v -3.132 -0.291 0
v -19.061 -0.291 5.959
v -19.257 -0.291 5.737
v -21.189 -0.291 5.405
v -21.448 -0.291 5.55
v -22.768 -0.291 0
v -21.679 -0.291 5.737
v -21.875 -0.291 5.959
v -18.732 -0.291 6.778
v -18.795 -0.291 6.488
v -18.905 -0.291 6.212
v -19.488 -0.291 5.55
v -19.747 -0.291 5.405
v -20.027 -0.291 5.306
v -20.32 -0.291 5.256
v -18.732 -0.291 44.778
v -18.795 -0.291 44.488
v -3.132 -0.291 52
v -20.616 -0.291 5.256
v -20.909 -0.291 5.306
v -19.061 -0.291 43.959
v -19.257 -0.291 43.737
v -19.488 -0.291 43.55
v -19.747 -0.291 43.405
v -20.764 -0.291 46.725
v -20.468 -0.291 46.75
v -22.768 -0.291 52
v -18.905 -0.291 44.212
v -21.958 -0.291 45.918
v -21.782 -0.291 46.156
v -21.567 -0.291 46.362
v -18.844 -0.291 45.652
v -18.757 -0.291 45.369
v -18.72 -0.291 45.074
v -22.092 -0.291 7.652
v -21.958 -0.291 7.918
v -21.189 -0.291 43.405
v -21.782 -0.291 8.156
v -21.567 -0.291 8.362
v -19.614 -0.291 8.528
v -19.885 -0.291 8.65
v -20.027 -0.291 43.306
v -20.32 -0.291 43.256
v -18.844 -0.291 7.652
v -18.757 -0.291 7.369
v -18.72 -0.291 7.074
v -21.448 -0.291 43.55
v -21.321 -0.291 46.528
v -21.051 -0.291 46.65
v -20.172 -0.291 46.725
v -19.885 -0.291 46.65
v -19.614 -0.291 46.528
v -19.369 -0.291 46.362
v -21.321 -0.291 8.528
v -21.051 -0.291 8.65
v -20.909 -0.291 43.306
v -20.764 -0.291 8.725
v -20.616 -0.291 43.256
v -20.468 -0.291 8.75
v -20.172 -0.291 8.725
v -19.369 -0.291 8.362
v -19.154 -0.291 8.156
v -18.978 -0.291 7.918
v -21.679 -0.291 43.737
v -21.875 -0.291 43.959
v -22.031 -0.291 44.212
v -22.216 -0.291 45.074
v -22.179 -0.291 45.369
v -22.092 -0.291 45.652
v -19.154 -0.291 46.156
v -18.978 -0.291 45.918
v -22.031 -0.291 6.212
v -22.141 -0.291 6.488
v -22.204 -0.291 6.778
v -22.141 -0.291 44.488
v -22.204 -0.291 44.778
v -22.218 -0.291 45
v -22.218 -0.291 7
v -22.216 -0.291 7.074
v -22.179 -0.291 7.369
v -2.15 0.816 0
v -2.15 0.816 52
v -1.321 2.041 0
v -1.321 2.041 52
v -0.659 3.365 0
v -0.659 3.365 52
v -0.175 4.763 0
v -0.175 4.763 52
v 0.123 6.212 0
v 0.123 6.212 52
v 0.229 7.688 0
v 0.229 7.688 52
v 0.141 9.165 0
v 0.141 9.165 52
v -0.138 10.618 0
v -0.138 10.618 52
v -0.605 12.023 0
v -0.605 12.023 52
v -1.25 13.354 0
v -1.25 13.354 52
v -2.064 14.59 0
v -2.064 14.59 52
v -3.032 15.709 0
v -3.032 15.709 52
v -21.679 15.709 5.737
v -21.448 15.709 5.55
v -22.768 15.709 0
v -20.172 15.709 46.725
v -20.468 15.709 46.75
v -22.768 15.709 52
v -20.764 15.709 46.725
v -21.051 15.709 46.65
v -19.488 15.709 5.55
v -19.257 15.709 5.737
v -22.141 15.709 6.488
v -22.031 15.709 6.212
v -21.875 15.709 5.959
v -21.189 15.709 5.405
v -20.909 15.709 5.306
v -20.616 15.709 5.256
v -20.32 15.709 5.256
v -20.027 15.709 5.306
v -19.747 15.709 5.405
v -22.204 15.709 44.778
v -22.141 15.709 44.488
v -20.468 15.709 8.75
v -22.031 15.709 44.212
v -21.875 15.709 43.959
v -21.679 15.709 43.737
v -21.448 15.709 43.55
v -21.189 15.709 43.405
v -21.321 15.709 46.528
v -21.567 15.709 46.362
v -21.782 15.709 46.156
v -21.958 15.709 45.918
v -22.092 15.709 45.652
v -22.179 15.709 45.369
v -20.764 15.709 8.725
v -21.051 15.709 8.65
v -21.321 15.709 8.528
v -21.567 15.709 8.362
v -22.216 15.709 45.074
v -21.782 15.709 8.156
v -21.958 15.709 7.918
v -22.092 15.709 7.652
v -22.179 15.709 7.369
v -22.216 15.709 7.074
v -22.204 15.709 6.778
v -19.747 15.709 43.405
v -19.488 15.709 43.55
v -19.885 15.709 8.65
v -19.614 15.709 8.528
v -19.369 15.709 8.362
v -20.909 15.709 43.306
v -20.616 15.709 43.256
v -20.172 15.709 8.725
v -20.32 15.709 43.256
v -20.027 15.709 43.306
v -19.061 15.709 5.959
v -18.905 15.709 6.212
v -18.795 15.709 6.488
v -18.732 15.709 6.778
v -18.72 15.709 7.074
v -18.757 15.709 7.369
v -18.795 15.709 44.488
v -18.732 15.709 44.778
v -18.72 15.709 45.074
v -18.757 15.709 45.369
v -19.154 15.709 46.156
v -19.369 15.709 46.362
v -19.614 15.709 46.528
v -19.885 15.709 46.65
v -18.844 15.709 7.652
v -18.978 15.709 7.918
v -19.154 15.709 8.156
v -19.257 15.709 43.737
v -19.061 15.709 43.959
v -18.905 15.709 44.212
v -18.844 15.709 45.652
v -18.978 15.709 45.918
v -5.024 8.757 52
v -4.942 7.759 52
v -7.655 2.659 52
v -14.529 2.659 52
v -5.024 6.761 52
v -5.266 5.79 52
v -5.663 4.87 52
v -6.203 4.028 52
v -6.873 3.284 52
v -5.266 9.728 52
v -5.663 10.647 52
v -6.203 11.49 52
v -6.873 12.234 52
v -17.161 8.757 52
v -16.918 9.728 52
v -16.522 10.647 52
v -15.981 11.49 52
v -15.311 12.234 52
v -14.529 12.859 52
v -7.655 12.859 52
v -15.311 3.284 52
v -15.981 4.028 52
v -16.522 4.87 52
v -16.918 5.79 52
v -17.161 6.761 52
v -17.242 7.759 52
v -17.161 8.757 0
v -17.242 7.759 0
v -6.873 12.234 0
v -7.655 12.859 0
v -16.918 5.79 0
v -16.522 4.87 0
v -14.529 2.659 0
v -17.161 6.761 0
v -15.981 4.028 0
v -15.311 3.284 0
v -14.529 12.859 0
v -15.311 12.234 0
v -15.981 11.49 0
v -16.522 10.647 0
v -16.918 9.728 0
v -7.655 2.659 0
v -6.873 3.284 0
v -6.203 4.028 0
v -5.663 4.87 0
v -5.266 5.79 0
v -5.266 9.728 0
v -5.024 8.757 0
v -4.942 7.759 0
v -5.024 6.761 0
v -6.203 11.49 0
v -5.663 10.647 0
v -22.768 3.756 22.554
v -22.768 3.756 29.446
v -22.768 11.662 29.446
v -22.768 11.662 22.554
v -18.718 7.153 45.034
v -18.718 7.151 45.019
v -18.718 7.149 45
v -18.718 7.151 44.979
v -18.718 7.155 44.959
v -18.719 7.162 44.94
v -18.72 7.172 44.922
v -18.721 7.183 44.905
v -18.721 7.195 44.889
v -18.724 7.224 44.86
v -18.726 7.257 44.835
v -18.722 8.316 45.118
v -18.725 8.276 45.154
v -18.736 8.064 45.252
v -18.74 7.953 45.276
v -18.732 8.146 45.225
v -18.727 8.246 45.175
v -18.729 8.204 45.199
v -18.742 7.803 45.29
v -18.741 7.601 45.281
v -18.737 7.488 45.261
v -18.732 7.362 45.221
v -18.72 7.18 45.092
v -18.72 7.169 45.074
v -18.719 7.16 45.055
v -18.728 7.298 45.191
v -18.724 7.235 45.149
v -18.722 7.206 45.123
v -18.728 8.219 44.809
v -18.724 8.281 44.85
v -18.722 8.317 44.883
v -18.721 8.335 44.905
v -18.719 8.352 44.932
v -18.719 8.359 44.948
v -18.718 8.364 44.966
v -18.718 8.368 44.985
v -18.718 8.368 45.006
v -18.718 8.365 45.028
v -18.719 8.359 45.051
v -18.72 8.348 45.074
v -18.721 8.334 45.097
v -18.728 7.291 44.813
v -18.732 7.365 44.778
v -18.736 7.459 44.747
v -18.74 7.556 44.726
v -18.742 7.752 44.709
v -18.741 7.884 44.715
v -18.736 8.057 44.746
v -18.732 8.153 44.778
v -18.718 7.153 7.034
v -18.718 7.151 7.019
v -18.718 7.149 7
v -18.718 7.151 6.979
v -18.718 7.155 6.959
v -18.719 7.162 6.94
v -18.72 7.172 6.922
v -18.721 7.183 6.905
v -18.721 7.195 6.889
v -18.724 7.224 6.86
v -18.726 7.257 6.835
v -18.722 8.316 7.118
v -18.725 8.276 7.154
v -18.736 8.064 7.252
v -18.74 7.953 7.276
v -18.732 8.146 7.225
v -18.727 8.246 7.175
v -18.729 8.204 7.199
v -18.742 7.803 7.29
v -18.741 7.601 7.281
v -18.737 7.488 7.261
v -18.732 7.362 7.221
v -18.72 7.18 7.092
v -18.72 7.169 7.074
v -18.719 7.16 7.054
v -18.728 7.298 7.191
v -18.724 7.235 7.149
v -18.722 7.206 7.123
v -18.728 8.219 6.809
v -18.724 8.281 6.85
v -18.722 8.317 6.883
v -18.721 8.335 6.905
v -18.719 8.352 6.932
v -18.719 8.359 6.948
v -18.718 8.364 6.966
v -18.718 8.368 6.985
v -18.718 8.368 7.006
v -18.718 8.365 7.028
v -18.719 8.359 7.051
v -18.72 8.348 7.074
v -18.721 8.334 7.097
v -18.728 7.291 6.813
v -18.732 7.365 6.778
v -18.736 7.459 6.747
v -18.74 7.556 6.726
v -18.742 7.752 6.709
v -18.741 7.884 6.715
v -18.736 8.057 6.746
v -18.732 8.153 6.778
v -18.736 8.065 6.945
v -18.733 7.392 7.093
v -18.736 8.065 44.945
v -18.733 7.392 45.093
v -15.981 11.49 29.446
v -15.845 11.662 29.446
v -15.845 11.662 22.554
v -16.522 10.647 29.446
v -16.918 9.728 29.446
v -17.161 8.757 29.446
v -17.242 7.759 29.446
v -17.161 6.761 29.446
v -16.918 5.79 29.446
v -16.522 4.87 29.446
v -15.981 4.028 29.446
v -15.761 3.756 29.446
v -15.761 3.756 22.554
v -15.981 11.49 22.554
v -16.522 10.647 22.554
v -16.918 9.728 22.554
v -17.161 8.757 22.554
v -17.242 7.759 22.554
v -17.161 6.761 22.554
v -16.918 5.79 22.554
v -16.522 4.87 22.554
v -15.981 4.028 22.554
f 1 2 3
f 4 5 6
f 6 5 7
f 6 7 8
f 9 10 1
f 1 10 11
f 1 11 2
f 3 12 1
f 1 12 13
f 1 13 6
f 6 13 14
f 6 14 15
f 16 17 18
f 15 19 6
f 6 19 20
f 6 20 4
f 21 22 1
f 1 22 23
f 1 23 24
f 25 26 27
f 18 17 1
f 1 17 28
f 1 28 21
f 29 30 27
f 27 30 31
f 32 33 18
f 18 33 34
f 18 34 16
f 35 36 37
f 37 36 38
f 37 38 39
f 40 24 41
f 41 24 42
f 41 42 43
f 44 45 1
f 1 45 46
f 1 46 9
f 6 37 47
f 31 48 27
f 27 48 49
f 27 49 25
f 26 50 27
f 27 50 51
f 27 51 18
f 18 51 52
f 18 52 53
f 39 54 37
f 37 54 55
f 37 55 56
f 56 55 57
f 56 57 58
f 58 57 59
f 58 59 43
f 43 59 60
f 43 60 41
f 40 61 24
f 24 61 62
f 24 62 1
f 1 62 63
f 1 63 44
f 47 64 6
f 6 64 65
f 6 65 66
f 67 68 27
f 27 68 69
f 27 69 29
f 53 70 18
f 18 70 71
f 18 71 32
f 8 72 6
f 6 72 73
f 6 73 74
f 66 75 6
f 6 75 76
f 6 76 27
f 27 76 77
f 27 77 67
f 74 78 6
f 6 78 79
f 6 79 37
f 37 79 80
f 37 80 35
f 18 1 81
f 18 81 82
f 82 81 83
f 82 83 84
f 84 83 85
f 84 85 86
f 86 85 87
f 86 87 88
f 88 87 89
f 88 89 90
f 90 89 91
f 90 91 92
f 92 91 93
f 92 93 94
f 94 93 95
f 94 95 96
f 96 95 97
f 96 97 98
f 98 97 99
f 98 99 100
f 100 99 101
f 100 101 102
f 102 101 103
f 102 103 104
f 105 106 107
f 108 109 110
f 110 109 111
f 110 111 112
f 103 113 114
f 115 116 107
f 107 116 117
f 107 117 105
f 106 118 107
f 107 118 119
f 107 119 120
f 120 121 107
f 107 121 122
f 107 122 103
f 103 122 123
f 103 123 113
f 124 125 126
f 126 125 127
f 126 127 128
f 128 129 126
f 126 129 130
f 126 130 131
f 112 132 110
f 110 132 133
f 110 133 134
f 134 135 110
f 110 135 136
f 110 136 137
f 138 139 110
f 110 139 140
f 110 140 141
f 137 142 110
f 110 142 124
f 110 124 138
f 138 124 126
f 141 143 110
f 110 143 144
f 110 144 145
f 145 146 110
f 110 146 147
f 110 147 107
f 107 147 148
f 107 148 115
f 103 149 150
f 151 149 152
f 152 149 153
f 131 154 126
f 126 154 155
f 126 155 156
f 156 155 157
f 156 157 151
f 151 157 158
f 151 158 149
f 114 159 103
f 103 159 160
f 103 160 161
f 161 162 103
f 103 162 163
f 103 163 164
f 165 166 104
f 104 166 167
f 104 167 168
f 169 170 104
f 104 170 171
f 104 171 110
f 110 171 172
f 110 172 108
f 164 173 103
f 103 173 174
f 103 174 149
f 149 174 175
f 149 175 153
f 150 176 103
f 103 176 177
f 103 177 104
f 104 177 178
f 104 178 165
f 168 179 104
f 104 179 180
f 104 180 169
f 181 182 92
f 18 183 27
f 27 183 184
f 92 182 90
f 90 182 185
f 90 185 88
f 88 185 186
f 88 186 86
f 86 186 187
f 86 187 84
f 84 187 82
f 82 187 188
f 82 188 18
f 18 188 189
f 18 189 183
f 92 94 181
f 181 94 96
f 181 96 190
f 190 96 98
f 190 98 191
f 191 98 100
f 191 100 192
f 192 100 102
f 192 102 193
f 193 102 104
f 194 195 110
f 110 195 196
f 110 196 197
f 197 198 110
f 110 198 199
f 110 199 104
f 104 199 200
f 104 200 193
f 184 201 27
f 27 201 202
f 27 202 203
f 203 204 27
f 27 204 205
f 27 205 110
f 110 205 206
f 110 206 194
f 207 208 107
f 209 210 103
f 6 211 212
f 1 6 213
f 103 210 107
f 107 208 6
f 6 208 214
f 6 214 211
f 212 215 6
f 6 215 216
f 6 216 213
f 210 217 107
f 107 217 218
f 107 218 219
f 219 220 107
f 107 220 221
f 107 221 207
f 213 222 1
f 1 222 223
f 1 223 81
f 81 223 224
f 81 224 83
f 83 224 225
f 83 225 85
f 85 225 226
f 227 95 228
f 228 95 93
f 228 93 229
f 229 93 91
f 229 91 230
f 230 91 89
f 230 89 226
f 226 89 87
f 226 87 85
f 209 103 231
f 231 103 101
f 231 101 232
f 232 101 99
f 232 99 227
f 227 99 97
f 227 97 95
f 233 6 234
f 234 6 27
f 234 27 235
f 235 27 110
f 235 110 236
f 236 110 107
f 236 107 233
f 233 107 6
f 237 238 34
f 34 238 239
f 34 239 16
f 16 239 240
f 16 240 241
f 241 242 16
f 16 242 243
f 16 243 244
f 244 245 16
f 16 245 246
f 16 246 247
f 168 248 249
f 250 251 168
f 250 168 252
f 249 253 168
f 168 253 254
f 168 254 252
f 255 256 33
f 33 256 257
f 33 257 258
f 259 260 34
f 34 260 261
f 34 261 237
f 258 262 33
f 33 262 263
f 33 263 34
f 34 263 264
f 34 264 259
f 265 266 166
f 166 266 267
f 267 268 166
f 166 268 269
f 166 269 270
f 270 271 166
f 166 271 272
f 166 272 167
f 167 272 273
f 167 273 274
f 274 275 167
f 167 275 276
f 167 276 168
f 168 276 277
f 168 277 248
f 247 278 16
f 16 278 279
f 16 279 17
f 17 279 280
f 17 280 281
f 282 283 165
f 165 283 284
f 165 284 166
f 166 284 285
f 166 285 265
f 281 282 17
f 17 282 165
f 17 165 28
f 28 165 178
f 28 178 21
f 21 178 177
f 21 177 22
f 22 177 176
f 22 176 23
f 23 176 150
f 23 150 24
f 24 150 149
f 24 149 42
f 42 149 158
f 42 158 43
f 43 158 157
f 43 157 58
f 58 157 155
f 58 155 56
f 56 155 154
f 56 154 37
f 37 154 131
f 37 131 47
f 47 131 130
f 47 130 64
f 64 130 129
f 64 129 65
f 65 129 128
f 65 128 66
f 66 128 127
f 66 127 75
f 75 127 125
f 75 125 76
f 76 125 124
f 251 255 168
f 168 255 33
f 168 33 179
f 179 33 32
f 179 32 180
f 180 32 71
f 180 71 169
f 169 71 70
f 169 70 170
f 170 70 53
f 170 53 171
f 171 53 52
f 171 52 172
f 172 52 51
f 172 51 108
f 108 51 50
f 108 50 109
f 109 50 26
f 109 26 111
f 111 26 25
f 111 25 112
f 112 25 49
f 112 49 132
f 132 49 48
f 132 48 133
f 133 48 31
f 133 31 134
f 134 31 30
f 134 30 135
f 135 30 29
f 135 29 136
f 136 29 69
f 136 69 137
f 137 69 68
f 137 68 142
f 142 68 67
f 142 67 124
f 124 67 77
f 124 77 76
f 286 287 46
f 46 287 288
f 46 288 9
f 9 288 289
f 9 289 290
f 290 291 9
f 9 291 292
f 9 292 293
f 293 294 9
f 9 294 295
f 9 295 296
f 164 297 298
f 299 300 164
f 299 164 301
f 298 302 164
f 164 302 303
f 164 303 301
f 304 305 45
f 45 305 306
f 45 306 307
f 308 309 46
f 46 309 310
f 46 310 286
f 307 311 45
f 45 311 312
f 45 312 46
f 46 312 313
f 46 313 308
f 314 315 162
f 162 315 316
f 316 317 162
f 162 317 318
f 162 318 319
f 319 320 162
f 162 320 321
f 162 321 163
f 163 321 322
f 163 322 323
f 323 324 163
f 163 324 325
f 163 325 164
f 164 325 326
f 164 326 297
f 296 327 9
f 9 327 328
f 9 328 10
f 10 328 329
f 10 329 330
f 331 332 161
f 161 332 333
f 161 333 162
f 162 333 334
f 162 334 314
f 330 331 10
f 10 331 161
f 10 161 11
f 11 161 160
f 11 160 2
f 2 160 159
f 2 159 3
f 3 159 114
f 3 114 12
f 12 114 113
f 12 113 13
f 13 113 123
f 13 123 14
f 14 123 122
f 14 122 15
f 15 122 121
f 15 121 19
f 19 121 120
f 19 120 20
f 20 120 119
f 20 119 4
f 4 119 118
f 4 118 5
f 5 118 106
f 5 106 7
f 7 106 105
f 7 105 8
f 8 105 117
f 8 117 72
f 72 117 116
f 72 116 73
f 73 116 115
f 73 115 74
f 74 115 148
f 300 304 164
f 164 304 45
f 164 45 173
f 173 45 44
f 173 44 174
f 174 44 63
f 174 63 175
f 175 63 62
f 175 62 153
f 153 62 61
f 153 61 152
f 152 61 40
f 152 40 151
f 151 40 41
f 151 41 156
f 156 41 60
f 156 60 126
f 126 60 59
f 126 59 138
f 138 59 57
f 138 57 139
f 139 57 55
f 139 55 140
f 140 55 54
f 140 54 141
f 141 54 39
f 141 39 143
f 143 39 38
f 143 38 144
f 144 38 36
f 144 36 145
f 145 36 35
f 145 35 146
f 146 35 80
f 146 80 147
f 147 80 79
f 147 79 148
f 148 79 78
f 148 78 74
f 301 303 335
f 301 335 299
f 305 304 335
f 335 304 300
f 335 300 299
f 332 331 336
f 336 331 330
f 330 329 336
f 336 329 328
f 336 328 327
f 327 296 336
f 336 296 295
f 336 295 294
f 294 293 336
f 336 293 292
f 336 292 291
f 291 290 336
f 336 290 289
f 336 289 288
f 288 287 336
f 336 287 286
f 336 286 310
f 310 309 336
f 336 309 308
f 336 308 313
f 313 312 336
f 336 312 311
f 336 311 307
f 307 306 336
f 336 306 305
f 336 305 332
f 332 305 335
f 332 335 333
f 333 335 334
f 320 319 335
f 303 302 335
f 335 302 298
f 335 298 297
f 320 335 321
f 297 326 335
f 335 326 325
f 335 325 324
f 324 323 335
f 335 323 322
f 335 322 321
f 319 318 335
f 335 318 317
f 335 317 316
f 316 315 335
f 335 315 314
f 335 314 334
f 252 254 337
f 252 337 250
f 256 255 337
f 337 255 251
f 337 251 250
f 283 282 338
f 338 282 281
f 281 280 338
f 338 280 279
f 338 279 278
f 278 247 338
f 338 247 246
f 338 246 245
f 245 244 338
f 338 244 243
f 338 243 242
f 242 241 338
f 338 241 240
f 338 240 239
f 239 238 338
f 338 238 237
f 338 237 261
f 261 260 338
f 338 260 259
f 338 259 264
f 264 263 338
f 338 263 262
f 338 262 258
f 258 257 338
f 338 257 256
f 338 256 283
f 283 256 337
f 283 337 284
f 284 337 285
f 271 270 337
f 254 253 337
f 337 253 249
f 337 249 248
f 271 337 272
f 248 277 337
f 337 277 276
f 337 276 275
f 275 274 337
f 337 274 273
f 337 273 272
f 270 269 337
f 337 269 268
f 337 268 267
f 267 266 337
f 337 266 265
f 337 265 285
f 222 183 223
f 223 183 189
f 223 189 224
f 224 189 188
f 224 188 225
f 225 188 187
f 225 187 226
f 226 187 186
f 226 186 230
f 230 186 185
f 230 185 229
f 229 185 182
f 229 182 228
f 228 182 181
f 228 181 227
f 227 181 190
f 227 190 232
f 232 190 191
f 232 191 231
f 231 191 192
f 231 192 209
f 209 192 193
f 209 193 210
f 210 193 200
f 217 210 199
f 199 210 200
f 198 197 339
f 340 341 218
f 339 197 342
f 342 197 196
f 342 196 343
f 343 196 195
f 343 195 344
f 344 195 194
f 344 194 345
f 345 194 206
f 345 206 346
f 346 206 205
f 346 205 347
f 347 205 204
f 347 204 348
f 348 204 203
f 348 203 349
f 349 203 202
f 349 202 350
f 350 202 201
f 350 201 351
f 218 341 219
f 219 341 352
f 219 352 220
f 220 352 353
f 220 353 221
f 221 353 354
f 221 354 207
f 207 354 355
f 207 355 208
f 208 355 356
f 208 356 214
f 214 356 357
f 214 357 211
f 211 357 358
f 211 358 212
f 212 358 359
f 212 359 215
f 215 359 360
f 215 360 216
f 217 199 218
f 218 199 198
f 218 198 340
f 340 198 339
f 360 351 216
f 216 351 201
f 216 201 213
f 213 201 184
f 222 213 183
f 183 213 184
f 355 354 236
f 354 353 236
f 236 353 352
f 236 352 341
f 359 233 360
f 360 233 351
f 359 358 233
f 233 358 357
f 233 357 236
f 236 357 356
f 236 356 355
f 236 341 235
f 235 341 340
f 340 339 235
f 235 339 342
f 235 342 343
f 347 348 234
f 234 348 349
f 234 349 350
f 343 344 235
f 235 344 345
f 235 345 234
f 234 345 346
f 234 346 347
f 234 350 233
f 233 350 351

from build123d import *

# Parameters (mm, degrees)
SALIENTE_EXTRUIR1_DEPTH = 52
CROQUIS3_W              = 0.615681901
CROQUIS3_H              = 16
SALIENTE_EXTRUIR2_DEPTH = 52
CROQUIS2_R              = 1.75
CORTAR_EXTRUIR1_DEPTH   = 52
SALIENTE_EXTRUIR3_START = -52
SALIENTE_EXTRUIR3_DEPTH = 52
CROQUIS4_W              = 6.89100463
CROQUIS4_H              = 7.9059588
CORTAR_EXTRUIR2_DEPTH   = 10


with BuildPart() as part:
    # Croquis1 → Saliente-Extruir1 (new body)
    with BuildSketch(Plane.XY):
        with BuildLine():
            Line((-3.032251305, 15.708802589), (-22.152251305, 15.708802589))
            Line((-22.152251305, 15.708802589), (-22.152251305, -0.291197411))
            Line((-22.152251305, -0.291197411), (-3.132125677, -0.291197411))
            ThreePointArc((-3.132125677, -0.291197411), (-3.082032439, -0.241353267), (-3.032251305, -0.191197411))
            ThreePointArc((-3.032251305, -0.191197411), (0.228795467, 7.758802589), (-3.032251305, 15.708802589))
        make_face()
        with BuildLine():
            Line((-15.641976571, 13.908802589), (-6.542526038, 13.908802589))
            ThreePointArc((-6.542526038, 13.908802589), (-3.442251305, 7.758802589), (-6.542526038, 1.608802589))
            Line((-6.542526038, 1.608802589), (-15.641976571, 1.608802589))
            ThreePointArc((-15.641976571, 1.608802589), (-18.742251305, 7.758802589), (-15.641976571, 13.908802589))
        make_face(mode=Mode.SUBTRACT)
    extrude(amount=SALIENTE_EXTRUIR1_DEPTH)

    # Croquis3 → Saliente-Extruir2 (add)
    with BuildSketch(Plane.XY.offset(52)):
        with Locations((-22.460092256, 7.708802589)):
            Rectangle(CROQUIS3_W, CROQUIS3_H)
    extrude(amount=-SALIENTE_EXTRUIR2_DEPTH)

    # Croquis2 → Cortar-Extruir1 (cut)
    with BuildSketch(Plane(origin=(0, 15.708802589, 0), x_dir=(1, 0, 0), z_dir=(0, 1, 0))):
        with Locations(Location((-20.467933206, -7, 0), (0, 0, 270))):
            Circle(CROQUIS2_R)
        with Locations(Location((-20.467933206, -45, 0), (0, 0, 270))):
            Circle(CROQUIS2_R)
    extrude(amount=-CORTAR_EXTRUIR1_DEPTH, mode=Mode.SUBTRACT)

    # Croquis5 → Saliente-Extruir3 (add)
    with BuildSketch(Plane.XY.offset(52).offset(SALIENTE_EXTRUIR3_START)):
        with BuildLine():
            ThreePointArc((-17.242251305, 7.758802589), (-16.52178307, 10.647173203), (-14.529183076, 12.858802589))
            Line((-14.529183076, 12.858802589), (-16.794224647, 12.858802589))
            ThreePointArc((-16.794224647, 12.858802589), (-17.024621708, 12.588862775), (-17.242251305, 12.308527855))
            Line((-17.242251305, 12.308527855), (-17.242251305, 7.758802589))
        make_face()
        with BuildLine():
            Line((-17.242251305, 3.209077323), (-17.242251305, 7.758802589))
            Line((-17.242251305, 7.758802589), (-17.242251305, 12.308527855))
            ThreePointArc((-17.242251305, 12.308527855), (-18.742251305, 7.758802589), (-17.242251305, 3.209077323))
        make_face()
        with BuildLine():
            Line((-16.794224647, 12.858802589), (-14.529183076, 12.858802589))
            ThreePointArc((-14.529183076, 12.858802589), (-12.889123587, 13.640447767), (-11.092251305, 13.908802589))
            Line((-11.092251305, 13.908802589), (-15.641976571, 13.908802589))
            ThreePointArc((-15.641976571, 13.908802589), (-16.244916255, 13.413229519), (-16.794224647, 12.858802589))
        make_face()
        with BuildLine():
            Line((-7.655319533, 12.858802589), (-5.390277962, 12.858802589))
            ThreePointArc((-5.390277962, 12.858802589), (-5.939586354, 13.413229519), (-6.542526038, 13.908802589))
            Line((-6.542526038, 13.908802589), (-11.092251305, 13.908802589))
            ThreePointArc((-11.092251305, 13.908802589), (-9.295379022, 13.640447767), (-7.655319533, 12.858802589))
        make_face()
        with BuildLine():
            ThreePointArc((-4.942251305, 12.308527855), (-5.159880902, 12.588862775), (-5.390277962, 12.858802589))
            Line((-5.390277962, 12.858802589), (-7.655319533, 12.858802589))
            ThreePointArc((-7.655319533, 12.858802589), (-5.662719539, 10.647173203), (-4.942251305, 7.758802589))
            Line((-4.942251305, 7.758802589), (-4.942251305, 12.308527855))
        make_face()
        with BuildLine():
            ThreePointArc((-3.442251305, 7.758802589), (-3.826922682, 10.154110502), (-4.942251305, 12.308527855))
            Line((-4.942251305, 12.308527855), (-4.942251305, 7.758802589))
            Line((-4.942251305, 7.758802589), (-4.942251305, 3.209077323))
            ThreePointArc((-4.942251305, 3.209077323), (-3.826922682, 5.363494676), (-3.442251305, 7.758802589))
        make_face()
        with BuildLine():
            Line((-4.942251305, 3.209077323), (-4.942251305, 7.758802589))
            ThreePointArc((-4.942251305, 7.758802589), (-5.662719539, 4.870431975), (-7.655319533, 2.658802589))
            Line((-7.655319533, 2.658802589), (-5.390277962, 2.658802589))
            ThreePointArc((-5.390277962, 2.658802589), (-5.159880902, 2.928742403), (-4.942251305, 3.209077323))
        make_face()
        with BuildLine():
            Line((-5.390277962, 2.658802589), (-7.655319533, 2.658802589))
            ThreePointArc((-7.655319533, 2.658802589), (-9.295379026, 1.87715741), (-11.092251313, 1.608802589))
            Line((-11.092251313, 1.608802589), (-6.542526038, 1.608802589))
            ThreePointArc((-6.542526038, 1.608802589), (-5.939586354, 2.104375659), (-5.390277962, 2.658802589))
        make_face()
        with BuildLine():
            ThreePointArc((-11.092251313, 1.608802589), (-9.295379026, 1.87715741), (-7.655319533, 2.658802589))
            Line((-7.655319533, 2.658802589), (-14.529183076, 2.658802589))
            ThreePointArc((-14.529183076, 2.658802589), (-12.889123591, 1.877157412), (-11.092251313, 1.608802589))
        make_face()
        with BuildLine():
            ThreePointArc((-11.092251313, 1.608802589), (-12.889123591, 1.877157412), (-14.529183076, 2.658802589))
            Line((-14.529183076, 2.658802589), (-16.794224647, 2.658802589))
            ThreePointArc((-16.794224647, 2.658802589), (-16.244916255, 2.104375659), (-15.641976571, 1.608802589))
            Line((-15.641976571, 1.608802589), (-11.092251313, 1.608802589))
        make_face()
        with BuildLine():
            ThreePointArc((-14.529183076, 2.658802589), (-16.52178307, 4.870431975), (-17.242251305, 7.758802589))
            Line((-17.242251305, 7.758802589), (-17.242251305, 3.209077323))
            ThreePointArc((-17.242251305, 3.209077323), (-17.024621708, 2.928742403), (-16.794224647, 2.658802589))
            Line((-16.794224647, 2.658802589), (-14.529183076, 2.658802589))
        make_face()
        with BuildLine():
            Line((-6.542526038, 1.608802589), (-11.092251313, 1.608802589))
            Line((-11.092251313, 1.608802589), (-15.641976571, 1.608802589))
            ThreePointArc((-15.641976571, 1.608802589), (-11.092251305, 0.108802589), (-6.542526038, 1.608802589))
        make_face()
        with BuildLine():
            Line((-11.092251305, 13.908802589), (-6.542526038, 13.908802589))
            ThreePointArc((-6.542526038, 13.908802589), (-11.092251305, 15.408802589), (-15.641976571, 13.908802589))
            Line((-15.641976571, 13.908802589), (-11.092251305, 13.908802589))
        make_face()
        with BuildLine():
            Line((-14.529183076, 12.858802589), (-7.655319533, 12.858802589))
            ThreePointArc((-7.655319533, 12.858802589), (-9.295379022, 13.640447767), (-11.092251305, 13.908802589))
            ThreePointArc((-11.092251305, 13.908802589), (-12.889123587, 13.640447767), (-14.529183076, 12.858802589))
        make_face()
    extrude(amount=SALIENTE_EXTRUIR3_DEPTH)

    # Croquis4 → Cortar-Extruir2 (cut)
    with BuildSketch(Plane.ZY.offset(22.767933206)):
        with Locations((26, 7.708802589)):
            Rectangle(CROQUIS4_W, CROQUIS4_H)
    extrude(amount=-CORTAR_EXTRUIR2_DEPTH, mode=Mode.SUBTRACT)


solid = part.part
